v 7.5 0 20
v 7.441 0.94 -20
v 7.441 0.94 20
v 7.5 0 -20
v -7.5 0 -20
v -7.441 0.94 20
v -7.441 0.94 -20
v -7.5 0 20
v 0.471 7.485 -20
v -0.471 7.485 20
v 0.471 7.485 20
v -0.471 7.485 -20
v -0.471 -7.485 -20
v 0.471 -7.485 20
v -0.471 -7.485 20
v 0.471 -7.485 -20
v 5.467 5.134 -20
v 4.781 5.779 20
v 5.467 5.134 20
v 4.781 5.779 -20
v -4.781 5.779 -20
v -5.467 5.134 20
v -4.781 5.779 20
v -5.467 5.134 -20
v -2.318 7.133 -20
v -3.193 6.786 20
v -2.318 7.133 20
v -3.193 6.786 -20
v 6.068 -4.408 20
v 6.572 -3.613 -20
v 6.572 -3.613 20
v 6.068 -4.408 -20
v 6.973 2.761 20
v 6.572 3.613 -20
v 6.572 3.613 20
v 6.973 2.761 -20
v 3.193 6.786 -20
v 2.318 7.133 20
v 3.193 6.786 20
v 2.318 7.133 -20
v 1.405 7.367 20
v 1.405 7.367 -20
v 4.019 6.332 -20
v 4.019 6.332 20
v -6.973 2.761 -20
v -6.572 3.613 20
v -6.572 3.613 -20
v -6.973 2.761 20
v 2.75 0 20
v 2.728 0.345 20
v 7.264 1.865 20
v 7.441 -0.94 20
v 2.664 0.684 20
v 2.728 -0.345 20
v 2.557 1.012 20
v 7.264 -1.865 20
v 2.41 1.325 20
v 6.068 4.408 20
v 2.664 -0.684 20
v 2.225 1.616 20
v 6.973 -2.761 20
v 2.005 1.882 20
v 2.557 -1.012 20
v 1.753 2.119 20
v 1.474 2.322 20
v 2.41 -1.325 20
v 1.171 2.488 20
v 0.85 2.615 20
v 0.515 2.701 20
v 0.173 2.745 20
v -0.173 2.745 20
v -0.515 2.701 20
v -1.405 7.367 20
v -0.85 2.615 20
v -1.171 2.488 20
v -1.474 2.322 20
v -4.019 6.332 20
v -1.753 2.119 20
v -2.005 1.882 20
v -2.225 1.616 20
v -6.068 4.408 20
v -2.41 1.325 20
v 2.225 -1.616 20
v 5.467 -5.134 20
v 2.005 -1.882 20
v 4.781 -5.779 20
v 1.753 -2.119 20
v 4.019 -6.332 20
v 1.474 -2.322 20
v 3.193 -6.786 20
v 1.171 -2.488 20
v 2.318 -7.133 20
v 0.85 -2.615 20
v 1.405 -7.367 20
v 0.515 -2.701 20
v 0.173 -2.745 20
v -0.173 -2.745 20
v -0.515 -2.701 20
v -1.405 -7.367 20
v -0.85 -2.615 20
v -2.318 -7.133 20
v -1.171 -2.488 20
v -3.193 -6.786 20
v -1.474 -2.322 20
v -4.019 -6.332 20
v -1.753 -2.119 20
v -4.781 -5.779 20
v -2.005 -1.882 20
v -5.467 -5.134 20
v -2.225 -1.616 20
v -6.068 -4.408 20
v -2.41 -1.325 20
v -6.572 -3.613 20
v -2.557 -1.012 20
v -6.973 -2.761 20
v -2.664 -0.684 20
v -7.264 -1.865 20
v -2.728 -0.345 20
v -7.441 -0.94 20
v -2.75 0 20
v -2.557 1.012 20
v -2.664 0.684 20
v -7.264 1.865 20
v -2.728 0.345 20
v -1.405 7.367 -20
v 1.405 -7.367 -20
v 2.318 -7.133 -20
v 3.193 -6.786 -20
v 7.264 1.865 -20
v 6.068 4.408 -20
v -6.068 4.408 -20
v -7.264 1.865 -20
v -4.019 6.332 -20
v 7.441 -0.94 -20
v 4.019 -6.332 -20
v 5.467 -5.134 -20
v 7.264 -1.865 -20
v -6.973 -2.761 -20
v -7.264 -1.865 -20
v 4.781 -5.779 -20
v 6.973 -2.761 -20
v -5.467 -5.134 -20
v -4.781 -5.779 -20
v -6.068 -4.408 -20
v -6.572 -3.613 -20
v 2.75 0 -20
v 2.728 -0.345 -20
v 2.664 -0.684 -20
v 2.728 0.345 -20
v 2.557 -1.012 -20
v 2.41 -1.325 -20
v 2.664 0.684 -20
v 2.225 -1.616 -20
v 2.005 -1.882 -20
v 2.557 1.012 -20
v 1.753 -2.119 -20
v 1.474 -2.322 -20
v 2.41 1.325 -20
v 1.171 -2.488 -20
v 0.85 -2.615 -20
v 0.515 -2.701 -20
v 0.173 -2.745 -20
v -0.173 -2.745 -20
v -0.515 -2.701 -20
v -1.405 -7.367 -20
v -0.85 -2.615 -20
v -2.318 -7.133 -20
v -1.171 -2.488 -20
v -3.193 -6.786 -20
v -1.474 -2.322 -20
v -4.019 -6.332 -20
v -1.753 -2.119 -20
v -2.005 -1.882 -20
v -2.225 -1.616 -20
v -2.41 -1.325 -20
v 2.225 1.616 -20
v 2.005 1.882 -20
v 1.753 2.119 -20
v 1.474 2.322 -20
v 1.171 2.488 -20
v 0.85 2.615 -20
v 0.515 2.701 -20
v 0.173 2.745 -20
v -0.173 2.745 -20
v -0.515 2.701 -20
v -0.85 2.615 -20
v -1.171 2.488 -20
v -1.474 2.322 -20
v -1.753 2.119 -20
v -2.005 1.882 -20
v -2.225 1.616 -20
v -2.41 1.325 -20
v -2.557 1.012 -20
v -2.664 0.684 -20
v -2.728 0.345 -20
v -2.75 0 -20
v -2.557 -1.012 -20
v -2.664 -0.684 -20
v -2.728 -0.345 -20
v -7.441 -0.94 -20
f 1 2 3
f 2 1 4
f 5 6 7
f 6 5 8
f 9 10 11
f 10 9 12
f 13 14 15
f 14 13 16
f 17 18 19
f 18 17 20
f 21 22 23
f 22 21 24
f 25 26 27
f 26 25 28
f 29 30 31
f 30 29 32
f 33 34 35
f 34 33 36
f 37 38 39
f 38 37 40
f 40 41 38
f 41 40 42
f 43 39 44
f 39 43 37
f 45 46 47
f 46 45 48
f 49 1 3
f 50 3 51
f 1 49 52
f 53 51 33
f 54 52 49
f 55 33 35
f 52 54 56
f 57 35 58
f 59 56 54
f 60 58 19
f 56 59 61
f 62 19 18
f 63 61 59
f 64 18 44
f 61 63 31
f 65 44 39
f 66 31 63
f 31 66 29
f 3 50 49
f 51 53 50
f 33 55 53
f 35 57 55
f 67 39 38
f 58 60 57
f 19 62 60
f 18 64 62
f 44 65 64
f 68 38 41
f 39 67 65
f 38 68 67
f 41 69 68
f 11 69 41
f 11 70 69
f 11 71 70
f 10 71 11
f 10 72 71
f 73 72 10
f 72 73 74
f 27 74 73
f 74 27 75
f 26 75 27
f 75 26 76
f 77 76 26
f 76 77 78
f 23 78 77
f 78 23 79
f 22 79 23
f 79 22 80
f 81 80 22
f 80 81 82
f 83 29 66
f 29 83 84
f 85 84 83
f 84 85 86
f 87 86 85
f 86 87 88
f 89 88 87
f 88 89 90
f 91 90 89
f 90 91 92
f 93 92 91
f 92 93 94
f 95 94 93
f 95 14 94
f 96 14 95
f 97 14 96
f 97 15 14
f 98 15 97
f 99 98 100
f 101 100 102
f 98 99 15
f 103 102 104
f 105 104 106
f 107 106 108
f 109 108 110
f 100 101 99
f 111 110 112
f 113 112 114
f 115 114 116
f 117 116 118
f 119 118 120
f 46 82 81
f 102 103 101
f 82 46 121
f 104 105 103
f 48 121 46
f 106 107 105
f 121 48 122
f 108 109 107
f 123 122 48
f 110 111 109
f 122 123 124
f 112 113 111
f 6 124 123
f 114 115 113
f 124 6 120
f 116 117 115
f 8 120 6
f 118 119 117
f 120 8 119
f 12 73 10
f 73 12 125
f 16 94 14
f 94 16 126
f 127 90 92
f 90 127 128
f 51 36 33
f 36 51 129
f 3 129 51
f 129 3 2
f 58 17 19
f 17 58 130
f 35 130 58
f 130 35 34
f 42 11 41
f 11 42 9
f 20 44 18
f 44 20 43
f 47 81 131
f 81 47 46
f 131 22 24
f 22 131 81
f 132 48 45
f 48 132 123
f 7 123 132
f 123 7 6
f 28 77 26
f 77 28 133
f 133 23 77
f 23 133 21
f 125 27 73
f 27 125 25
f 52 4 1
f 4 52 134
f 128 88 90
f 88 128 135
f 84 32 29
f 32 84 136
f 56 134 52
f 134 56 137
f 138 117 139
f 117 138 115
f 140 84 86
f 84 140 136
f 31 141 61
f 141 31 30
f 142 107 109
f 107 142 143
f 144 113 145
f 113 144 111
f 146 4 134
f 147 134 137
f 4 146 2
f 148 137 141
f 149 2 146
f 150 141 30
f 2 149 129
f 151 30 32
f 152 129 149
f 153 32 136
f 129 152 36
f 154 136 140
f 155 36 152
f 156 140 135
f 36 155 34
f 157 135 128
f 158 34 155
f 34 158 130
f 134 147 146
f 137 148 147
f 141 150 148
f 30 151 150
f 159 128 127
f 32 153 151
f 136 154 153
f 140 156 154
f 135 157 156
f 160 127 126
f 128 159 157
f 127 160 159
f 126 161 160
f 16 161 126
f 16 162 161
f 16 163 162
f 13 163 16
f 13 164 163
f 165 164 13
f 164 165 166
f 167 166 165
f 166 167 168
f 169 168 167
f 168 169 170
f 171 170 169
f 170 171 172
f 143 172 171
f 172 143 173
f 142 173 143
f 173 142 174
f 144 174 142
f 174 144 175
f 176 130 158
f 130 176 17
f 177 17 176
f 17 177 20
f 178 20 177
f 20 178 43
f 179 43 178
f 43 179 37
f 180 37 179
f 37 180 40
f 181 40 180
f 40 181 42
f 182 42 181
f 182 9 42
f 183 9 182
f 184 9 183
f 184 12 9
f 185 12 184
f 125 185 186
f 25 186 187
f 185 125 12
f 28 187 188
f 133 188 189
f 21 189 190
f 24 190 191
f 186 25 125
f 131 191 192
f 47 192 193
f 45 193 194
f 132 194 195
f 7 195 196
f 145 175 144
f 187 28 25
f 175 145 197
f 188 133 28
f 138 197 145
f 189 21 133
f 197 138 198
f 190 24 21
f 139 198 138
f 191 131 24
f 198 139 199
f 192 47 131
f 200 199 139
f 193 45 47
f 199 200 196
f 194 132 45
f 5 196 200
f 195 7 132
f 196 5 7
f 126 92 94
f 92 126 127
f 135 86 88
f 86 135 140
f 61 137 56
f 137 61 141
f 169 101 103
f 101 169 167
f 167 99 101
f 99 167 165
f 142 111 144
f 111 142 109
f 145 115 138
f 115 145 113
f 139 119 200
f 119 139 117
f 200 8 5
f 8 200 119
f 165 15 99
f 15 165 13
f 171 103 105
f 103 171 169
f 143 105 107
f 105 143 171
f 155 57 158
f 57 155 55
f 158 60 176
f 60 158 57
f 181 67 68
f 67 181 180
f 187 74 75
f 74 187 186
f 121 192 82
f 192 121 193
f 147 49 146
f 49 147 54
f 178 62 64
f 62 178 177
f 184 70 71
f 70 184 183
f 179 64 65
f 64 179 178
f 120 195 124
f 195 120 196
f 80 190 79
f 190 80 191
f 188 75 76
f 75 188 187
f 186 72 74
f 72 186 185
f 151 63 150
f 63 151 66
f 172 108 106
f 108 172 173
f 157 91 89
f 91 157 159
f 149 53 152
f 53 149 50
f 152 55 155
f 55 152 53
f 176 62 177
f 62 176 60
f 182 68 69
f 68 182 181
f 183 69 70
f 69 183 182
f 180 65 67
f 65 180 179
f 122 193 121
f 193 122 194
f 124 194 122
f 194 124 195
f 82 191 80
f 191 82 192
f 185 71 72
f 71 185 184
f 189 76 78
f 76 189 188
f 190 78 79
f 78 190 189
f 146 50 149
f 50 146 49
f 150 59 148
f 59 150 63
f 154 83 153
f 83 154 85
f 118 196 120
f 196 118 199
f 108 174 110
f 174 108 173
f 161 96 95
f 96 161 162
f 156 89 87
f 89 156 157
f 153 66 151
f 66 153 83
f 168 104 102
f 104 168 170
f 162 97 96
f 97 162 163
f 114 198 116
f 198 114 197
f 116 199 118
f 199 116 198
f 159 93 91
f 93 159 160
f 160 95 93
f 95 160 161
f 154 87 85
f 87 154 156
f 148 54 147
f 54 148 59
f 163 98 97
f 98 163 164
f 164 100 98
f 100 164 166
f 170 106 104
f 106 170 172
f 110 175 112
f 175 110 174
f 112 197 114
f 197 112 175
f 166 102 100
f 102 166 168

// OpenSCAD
$fn = 50;


difference() {
	union() {
		translate(v = [0, 0, -20.0000000000]) {
			cylinder(h = 40, r = 7.5000000000);
		}
	}
	union() {
		translate(v = [0, 0, -100.0000000000]) {
			cylinder(h = 200, r = 2.7500000000);
		}
	}
}
